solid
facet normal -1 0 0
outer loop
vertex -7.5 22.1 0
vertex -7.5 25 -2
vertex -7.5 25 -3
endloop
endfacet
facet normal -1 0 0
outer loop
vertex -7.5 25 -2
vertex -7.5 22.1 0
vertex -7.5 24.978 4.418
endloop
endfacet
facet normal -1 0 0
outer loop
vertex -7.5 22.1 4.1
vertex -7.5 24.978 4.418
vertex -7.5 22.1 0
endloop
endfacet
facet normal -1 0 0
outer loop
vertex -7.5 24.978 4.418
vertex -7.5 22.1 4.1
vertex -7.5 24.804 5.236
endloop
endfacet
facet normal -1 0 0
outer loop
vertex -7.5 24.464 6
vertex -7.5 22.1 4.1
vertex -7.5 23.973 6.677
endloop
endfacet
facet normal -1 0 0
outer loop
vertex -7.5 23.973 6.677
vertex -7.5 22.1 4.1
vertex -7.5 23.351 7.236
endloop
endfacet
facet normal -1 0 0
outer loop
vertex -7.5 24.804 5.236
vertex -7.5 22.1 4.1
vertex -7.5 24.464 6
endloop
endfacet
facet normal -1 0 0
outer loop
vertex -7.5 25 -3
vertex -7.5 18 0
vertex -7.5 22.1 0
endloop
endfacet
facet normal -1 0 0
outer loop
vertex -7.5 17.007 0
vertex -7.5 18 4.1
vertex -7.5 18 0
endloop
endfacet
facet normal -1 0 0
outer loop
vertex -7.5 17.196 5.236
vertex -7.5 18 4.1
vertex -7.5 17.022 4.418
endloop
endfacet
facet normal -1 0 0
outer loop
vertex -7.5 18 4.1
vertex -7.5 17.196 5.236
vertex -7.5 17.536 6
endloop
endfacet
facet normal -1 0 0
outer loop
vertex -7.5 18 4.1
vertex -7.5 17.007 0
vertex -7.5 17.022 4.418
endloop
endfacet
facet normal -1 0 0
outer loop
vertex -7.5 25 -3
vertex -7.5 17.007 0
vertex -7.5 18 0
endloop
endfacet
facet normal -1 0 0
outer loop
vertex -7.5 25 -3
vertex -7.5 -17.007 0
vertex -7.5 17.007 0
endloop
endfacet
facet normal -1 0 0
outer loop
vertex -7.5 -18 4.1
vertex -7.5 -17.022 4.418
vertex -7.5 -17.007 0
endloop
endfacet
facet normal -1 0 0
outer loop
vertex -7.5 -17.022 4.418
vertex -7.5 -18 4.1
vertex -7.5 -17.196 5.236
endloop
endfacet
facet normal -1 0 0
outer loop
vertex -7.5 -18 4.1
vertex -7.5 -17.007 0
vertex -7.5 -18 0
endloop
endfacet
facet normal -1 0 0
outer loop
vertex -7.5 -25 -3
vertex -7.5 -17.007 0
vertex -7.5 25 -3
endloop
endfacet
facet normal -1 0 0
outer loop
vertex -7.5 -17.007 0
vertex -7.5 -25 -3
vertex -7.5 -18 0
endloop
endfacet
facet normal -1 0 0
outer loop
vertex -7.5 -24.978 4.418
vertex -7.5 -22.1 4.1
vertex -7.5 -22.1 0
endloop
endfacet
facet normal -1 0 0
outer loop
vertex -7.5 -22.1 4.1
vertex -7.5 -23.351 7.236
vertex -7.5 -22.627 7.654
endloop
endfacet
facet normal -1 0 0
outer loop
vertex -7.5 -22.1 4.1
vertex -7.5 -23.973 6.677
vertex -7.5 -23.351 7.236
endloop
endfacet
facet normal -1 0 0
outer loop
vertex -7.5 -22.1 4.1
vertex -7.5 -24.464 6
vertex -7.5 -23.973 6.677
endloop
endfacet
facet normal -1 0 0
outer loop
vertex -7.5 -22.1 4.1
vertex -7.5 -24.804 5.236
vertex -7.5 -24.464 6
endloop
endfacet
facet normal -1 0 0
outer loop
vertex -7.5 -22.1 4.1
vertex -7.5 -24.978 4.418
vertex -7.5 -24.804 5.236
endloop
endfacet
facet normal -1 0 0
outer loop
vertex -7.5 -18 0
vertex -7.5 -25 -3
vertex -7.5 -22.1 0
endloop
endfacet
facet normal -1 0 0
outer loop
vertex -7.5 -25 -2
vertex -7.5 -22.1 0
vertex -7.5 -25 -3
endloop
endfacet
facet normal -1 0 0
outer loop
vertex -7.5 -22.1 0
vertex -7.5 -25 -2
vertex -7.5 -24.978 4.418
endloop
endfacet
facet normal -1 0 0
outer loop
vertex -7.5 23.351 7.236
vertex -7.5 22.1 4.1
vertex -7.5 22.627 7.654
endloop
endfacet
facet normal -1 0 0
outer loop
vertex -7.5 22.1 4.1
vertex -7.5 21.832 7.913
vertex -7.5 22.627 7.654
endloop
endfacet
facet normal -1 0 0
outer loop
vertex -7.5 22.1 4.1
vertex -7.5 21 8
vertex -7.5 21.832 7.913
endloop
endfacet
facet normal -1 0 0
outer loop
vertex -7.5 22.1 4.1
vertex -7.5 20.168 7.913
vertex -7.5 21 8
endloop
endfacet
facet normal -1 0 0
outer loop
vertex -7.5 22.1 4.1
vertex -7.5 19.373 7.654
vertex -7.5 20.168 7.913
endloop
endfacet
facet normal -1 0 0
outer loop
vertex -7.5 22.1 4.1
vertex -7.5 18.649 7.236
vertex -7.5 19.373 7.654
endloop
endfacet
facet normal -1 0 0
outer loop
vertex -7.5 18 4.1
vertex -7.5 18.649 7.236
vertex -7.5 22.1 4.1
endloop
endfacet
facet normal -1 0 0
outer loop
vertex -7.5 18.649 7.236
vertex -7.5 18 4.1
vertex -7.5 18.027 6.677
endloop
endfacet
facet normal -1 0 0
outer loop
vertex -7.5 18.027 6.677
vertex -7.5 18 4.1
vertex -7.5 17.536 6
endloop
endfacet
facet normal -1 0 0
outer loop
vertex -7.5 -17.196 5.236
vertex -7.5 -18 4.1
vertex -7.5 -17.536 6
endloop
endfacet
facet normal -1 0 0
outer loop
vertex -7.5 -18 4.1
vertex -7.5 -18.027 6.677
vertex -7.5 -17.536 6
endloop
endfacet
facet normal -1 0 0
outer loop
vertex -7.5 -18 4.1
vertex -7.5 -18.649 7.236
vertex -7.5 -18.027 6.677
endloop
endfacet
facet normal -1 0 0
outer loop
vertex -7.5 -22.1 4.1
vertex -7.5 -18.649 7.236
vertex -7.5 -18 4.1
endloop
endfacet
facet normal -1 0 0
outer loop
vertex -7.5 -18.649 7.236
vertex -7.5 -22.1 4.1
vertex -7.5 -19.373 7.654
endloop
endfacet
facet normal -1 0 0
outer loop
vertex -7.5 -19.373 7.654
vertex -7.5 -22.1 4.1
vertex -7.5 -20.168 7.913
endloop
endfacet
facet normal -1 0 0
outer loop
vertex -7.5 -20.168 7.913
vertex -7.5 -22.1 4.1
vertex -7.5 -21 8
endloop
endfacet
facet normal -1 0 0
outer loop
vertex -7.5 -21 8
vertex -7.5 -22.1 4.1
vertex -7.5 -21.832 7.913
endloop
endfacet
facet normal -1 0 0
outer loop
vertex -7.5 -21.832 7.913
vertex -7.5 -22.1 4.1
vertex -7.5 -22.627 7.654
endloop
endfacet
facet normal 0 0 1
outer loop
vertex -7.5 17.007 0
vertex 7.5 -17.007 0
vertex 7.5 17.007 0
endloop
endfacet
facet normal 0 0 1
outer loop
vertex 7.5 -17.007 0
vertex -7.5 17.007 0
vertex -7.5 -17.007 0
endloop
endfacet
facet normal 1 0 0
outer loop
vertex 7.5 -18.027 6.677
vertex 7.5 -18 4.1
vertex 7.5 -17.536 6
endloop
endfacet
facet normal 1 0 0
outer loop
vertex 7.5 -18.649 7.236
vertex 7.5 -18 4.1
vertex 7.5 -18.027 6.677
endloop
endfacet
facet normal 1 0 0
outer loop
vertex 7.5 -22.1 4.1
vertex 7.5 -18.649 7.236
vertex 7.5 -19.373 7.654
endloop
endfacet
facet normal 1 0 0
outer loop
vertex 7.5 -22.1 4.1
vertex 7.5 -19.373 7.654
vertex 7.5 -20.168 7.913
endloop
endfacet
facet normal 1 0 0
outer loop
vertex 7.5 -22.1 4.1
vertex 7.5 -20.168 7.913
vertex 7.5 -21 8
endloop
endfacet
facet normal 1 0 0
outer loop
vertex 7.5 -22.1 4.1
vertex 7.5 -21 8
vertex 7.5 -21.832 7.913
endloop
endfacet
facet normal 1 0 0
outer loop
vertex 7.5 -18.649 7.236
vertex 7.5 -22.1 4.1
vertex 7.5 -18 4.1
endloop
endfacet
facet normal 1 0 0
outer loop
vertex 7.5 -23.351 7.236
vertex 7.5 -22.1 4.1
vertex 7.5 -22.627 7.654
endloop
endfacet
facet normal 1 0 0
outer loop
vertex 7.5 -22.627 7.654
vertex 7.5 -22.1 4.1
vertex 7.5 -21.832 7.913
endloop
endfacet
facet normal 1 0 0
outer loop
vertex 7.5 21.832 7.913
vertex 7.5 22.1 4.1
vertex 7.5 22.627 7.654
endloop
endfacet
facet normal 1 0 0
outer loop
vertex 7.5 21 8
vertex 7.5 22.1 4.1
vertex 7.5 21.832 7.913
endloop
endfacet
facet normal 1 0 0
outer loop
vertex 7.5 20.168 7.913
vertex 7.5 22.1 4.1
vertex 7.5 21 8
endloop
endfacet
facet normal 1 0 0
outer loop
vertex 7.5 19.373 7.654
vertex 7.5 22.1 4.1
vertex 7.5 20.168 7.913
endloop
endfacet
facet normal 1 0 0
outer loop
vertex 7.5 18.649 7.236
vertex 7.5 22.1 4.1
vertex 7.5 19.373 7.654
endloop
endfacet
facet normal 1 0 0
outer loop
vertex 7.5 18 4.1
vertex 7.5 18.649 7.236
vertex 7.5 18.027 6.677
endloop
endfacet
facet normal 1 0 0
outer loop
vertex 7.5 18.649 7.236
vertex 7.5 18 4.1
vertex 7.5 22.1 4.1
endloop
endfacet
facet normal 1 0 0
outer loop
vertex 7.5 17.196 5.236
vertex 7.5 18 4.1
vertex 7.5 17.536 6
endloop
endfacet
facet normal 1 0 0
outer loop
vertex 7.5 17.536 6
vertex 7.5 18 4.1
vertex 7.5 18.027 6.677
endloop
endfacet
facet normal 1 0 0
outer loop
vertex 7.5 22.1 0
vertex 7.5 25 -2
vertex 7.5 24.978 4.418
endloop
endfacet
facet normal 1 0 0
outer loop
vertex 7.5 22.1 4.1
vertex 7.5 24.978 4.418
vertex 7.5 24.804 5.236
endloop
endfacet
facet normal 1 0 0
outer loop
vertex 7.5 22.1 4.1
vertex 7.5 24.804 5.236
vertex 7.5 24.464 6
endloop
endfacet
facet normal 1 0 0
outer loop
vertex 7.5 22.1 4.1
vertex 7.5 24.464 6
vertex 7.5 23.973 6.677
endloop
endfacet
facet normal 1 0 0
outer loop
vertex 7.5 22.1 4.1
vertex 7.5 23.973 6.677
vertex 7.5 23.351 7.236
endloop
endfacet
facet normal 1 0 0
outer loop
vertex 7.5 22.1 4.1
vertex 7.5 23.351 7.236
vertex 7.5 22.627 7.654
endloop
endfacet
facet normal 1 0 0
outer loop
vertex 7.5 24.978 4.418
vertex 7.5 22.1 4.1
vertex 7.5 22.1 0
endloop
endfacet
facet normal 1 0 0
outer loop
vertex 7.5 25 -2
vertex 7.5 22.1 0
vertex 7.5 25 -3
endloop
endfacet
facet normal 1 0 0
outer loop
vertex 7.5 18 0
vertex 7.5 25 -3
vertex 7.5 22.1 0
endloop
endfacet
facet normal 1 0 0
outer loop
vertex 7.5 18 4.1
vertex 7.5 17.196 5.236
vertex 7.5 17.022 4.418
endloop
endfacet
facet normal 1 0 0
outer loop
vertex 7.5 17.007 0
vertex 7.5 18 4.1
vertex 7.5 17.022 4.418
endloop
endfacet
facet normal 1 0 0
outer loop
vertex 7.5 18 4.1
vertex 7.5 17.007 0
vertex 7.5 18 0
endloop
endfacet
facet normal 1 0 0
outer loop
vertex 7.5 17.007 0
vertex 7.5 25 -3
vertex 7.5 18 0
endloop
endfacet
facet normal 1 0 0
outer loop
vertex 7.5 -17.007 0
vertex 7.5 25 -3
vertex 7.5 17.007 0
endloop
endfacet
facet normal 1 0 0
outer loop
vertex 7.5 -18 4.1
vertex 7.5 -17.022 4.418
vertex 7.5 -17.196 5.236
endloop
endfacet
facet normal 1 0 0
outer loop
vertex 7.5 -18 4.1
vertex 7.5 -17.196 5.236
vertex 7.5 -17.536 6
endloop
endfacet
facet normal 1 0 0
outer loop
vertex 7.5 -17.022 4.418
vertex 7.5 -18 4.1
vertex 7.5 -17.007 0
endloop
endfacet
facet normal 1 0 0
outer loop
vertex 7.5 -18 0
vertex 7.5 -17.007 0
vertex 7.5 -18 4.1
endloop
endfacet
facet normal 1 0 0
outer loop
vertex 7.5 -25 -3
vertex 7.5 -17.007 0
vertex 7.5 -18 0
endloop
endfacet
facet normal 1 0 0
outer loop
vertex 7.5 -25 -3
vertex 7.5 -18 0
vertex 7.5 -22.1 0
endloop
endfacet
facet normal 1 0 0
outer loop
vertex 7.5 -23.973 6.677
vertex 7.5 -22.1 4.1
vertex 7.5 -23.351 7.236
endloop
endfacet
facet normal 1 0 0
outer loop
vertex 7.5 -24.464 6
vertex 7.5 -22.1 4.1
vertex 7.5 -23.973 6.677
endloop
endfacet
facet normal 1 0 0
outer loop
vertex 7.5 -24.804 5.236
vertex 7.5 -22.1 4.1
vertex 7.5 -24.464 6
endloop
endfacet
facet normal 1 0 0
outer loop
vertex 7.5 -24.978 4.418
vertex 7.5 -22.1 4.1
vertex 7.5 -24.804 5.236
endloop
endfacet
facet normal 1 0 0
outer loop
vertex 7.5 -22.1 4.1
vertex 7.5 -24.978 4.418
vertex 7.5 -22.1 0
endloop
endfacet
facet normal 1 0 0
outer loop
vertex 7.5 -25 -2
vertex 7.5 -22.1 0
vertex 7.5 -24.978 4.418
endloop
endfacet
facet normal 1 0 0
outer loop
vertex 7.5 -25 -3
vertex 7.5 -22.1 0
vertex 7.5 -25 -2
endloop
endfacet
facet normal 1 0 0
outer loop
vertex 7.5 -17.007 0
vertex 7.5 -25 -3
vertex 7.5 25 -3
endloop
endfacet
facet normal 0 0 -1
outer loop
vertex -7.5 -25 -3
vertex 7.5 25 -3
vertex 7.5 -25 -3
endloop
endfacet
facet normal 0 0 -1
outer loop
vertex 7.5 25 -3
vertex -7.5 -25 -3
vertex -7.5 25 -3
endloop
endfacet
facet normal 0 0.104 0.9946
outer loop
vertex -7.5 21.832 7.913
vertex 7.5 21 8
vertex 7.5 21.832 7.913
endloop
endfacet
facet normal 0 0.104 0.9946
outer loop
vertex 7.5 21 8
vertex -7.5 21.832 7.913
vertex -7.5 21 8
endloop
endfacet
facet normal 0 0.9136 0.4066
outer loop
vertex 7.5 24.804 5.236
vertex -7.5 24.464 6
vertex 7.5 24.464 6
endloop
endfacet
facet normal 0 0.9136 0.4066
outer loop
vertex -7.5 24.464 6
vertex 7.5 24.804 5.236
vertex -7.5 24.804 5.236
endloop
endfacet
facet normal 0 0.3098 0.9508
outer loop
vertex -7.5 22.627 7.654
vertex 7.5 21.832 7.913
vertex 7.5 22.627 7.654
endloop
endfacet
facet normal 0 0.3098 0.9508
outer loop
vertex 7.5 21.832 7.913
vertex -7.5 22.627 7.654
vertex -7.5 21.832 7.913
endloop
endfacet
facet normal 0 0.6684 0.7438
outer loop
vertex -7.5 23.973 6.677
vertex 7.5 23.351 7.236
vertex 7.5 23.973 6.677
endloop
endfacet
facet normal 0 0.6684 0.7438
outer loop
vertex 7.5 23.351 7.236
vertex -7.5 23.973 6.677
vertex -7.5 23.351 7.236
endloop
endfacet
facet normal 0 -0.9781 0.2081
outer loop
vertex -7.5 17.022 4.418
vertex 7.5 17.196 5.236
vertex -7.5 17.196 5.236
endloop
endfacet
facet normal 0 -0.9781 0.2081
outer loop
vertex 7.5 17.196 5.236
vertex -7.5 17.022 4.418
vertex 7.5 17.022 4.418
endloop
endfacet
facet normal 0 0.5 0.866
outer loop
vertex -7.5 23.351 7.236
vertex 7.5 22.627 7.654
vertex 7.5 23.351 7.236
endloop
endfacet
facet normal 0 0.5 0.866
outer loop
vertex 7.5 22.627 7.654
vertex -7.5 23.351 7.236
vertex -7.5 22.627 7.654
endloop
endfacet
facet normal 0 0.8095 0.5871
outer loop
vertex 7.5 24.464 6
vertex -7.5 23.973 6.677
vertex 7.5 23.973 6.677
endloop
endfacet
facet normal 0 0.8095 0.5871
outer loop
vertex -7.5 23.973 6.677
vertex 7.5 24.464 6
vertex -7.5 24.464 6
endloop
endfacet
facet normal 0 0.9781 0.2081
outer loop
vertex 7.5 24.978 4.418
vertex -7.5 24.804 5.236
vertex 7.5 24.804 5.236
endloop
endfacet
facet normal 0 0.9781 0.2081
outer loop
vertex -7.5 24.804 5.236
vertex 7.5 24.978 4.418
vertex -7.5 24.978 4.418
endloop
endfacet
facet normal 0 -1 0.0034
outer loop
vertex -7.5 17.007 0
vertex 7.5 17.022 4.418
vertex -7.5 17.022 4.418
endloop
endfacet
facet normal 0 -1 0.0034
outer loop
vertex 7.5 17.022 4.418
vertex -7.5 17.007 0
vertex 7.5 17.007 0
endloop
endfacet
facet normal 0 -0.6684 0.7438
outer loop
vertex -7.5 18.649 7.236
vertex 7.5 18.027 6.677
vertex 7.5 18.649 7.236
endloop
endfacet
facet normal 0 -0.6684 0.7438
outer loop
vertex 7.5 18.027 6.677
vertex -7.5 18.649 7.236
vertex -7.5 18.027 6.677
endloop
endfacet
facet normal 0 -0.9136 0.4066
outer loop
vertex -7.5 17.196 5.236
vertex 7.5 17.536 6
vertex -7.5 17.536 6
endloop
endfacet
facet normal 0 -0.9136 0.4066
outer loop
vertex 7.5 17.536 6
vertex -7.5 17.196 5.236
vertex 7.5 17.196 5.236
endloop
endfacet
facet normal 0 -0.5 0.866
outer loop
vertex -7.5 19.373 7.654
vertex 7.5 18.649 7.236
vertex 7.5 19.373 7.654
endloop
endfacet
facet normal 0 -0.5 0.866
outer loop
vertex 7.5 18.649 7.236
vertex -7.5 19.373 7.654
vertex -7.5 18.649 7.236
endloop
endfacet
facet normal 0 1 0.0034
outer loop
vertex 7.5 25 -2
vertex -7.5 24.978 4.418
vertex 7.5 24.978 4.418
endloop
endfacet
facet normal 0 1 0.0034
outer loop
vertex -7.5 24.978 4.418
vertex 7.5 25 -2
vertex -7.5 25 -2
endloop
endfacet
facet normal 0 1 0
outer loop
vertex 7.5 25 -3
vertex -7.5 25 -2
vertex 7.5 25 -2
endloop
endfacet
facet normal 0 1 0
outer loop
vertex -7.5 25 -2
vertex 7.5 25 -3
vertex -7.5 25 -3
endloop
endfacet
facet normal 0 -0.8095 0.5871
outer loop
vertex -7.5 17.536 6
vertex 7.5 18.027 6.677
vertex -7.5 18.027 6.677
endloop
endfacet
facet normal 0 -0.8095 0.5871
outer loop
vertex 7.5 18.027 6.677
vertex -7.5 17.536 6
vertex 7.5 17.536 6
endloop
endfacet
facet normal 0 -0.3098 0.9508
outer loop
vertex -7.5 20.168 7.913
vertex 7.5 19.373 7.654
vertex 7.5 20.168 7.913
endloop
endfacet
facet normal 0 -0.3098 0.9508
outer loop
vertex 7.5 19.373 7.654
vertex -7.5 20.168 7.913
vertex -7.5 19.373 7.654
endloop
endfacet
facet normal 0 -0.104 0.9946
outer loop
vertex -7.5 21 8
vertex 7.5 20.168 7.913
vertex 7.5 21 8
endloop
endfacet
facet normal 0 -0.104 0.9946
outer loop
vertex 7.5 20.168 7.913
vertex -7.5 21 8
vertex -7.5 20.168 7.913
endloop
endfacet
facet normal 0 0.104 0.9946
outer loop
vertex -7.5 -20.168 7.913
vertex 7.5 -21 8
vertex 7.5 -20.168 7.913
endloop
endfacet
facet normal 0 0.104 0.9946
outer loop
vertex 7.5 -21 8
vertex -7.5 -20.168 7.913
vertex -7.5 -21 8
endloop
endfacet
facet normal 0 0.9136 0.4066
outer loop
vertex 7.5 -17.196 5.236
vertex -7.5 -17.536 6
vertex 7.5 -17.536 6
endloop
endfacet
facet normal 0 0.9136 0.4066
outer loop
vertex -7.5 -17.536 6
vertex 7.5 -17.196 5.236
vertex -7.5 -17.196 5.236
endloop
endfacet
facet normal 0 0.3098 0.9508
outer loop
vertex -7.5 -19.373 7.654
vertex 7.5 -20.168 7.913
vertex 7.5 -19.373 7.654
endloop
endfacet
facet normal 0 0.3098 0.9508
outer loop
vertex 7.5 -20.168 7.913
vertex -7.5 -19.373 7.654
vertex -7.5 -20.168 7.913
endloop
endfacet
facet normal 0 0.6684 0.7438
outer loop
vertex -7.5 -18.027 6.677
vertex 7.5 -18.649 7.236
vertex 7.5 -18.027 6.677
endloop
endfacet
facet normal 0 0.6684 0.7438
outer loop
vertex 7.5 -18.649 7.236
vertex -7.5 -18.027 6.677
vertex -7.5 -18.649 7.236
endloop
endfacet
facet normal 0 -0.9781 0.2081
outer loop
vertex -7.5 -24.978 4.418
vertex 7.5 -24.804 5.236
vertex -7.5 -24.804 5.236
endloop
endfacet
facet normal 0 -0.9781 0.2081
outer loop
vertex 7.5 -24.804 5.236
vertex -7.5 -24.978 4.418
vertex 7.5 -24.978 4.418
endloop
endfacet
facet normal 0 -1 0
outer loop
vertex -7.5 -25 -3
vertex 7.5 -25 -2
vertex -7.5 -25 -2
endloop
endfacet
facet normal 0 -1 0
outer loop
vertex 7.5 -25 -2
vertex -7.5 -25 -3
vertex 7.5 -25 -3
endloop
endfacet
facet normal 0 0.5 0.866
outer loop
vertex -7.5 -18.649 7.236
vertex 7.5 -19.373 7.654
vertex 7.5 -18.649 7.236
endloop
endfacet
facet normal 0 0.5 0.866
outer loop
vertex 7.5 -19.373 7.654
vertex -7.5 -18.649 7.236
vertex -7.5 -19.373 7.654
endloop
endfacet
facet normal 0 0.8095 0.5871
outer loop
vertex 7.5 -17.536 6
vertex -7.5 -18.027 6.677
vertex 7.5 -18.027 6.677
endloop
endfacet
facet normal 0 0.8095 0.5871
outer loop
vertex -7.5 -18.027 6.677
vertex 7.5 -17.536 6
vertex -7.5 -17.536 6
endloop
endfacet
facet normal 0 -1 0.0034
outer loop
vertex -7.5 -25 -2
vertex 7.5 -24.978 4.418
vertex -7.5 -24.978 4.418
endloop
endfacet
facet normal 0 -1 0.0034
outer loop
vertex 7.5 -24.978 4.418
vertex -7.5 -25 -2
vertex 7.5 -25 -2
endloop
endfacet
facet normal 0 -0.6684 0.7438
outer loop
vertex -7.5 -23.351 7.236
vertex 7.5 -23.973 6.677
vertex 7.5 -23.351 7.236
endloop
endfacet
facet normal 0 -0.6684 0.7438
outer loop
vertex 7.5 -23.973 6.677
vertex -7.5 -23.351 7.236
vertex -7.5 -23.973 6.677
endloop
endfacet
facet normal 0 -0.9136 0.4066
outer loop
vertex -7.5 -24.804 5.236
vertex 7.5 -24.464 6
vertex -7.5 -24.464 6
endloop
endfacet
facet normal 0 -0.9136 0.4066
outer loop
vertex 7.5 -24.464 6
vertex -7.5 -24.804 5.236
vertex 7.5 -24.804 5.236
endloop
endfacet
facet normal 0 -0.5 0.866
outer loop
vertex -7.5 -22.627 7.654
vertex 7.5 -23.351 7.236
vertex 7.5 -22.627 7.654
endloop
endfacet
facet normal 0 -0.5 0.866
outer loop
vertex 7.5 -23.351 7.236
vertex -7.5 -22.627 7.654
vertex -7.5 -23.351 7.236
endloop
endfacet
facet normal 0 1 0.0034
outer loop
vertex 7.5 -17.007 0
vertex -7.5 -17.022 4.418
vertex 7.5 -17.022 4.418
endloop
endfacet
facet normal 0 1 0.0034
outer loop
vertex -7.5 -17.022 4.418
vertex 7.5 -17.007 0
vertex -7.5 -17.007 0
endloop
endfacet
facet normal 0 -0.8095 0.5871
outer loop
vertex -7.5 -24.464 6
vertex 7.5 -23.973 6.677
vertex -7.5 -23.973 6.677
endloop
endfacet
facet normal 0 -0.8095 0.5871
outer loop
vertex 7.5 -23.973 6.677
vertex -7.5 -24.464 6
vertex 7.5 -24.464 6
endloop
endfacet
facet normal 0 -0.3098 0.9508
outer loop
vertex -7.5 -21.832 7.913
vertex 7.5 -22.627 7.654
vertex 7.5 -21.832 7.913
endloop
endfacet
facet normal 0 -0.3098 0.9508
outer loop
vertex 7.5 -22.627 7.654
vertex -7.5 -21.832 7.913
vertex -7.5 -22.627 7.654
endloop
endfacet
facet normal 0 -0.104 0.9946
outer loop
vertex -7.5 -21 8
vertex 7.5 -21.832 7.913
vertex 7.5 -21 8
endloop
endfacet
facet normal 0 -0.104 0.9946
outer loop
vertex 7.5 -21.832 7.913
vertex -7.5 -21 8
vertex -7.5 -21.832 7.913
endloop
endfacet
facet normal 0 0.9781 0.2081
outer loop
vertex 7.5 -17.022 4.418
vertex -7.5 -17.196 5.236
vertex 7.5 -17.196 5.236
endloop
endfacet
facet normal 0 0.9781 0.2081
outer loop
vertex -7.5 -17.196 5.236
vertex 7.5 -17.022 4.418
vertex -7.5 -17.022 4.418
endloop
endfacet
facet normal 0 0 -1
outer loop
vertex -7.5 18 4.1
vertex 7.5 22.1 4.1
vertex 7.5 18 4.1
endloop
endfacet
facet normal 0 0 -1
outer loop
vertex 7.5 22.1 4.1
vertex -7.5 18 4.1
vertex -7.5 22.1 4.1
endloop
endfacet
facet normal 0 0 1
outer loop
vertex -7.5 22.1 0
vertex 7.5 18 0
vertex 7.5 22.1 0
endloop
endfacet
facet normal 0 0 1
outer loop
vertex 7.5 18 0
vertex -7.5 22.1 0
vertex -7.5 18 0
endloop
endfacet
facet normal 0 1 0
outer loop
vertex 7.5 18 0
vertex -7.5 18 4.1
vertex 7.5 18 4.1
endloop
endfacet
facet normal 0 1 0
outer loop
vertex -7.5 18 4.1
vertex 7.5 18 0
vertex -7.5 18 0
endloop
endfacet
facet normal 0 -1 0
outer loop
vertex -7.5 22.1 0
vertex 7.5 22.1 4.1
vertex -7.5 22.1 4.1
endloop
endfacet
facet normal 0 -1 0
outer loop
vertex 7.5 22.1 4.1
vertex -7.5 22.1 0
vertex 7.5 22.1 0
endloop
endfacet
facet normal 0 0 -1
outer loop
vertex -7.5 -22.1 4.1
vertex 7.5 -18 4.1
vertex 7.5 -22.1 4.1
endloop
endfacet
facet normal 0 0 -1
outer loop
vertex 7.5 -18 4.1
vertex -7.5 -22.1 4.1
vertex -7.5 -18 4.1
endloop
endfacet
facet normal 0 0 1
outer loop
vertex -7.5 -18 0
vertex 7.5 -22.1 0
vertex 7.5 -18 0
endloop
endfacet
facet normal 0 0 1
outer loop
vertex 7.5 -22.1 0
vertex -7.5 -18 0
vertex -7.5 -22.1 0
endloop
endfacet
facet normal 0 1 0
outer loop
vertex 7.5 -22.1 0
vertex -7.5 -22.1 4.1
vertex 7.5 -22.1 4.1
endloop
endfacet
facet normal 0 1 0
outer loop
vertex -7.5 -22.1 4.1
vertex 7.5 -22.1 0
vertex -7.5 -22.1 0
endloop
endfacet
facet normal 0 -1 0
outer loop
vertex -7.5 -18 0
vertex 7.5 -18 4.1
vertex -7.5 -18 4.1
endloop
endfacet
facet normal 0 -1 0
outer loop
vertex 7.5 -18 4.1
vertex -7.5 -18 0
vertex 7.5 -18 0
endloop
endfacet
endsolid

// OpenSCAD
t = 5;


rx = 100;
rdy = 4.1;
roy = 36;
royl = 58;




module rails(oz=2) {
    
  translate([-rx/2,roy/2,oz]) cube([rx,rdy,rdy]);
  mirror([0,1,0]){
    translate([-rx/2,roy/2,oz]) cube([rx,rdy,rdy]);
  }
    
}

module railsLow(oz=2) {
    
  translate([-rx/2,royl/2,oz]) cube([rx,rdy,rdy]);
  mirror([0,1,0]){
    translate([-rx/2,royl/2,oz]) cube([rx,rdy,rdy]);
  }
    
}


difference(){
union(){
  translate([-15/2,-40/2,-3])cube([15,40,3]);
    
  hull(){
    translate([-15/2,31-10,4])rotate([0,90,0])cylinder(r=4,h=15,$fn=30);
    translate([-15/2,31-8/2-10,-3])cube([15,8,1]);
  }
  hull(){
    translate([-15/2,-31+10,4])rotate([0,90,0])cylinder(r=4,h=15,$fn=30);
    translate([-15/2,-31-8/2+10,-3])cube([15,8,1]);
  }
  
}




rails(oz=0);

}
